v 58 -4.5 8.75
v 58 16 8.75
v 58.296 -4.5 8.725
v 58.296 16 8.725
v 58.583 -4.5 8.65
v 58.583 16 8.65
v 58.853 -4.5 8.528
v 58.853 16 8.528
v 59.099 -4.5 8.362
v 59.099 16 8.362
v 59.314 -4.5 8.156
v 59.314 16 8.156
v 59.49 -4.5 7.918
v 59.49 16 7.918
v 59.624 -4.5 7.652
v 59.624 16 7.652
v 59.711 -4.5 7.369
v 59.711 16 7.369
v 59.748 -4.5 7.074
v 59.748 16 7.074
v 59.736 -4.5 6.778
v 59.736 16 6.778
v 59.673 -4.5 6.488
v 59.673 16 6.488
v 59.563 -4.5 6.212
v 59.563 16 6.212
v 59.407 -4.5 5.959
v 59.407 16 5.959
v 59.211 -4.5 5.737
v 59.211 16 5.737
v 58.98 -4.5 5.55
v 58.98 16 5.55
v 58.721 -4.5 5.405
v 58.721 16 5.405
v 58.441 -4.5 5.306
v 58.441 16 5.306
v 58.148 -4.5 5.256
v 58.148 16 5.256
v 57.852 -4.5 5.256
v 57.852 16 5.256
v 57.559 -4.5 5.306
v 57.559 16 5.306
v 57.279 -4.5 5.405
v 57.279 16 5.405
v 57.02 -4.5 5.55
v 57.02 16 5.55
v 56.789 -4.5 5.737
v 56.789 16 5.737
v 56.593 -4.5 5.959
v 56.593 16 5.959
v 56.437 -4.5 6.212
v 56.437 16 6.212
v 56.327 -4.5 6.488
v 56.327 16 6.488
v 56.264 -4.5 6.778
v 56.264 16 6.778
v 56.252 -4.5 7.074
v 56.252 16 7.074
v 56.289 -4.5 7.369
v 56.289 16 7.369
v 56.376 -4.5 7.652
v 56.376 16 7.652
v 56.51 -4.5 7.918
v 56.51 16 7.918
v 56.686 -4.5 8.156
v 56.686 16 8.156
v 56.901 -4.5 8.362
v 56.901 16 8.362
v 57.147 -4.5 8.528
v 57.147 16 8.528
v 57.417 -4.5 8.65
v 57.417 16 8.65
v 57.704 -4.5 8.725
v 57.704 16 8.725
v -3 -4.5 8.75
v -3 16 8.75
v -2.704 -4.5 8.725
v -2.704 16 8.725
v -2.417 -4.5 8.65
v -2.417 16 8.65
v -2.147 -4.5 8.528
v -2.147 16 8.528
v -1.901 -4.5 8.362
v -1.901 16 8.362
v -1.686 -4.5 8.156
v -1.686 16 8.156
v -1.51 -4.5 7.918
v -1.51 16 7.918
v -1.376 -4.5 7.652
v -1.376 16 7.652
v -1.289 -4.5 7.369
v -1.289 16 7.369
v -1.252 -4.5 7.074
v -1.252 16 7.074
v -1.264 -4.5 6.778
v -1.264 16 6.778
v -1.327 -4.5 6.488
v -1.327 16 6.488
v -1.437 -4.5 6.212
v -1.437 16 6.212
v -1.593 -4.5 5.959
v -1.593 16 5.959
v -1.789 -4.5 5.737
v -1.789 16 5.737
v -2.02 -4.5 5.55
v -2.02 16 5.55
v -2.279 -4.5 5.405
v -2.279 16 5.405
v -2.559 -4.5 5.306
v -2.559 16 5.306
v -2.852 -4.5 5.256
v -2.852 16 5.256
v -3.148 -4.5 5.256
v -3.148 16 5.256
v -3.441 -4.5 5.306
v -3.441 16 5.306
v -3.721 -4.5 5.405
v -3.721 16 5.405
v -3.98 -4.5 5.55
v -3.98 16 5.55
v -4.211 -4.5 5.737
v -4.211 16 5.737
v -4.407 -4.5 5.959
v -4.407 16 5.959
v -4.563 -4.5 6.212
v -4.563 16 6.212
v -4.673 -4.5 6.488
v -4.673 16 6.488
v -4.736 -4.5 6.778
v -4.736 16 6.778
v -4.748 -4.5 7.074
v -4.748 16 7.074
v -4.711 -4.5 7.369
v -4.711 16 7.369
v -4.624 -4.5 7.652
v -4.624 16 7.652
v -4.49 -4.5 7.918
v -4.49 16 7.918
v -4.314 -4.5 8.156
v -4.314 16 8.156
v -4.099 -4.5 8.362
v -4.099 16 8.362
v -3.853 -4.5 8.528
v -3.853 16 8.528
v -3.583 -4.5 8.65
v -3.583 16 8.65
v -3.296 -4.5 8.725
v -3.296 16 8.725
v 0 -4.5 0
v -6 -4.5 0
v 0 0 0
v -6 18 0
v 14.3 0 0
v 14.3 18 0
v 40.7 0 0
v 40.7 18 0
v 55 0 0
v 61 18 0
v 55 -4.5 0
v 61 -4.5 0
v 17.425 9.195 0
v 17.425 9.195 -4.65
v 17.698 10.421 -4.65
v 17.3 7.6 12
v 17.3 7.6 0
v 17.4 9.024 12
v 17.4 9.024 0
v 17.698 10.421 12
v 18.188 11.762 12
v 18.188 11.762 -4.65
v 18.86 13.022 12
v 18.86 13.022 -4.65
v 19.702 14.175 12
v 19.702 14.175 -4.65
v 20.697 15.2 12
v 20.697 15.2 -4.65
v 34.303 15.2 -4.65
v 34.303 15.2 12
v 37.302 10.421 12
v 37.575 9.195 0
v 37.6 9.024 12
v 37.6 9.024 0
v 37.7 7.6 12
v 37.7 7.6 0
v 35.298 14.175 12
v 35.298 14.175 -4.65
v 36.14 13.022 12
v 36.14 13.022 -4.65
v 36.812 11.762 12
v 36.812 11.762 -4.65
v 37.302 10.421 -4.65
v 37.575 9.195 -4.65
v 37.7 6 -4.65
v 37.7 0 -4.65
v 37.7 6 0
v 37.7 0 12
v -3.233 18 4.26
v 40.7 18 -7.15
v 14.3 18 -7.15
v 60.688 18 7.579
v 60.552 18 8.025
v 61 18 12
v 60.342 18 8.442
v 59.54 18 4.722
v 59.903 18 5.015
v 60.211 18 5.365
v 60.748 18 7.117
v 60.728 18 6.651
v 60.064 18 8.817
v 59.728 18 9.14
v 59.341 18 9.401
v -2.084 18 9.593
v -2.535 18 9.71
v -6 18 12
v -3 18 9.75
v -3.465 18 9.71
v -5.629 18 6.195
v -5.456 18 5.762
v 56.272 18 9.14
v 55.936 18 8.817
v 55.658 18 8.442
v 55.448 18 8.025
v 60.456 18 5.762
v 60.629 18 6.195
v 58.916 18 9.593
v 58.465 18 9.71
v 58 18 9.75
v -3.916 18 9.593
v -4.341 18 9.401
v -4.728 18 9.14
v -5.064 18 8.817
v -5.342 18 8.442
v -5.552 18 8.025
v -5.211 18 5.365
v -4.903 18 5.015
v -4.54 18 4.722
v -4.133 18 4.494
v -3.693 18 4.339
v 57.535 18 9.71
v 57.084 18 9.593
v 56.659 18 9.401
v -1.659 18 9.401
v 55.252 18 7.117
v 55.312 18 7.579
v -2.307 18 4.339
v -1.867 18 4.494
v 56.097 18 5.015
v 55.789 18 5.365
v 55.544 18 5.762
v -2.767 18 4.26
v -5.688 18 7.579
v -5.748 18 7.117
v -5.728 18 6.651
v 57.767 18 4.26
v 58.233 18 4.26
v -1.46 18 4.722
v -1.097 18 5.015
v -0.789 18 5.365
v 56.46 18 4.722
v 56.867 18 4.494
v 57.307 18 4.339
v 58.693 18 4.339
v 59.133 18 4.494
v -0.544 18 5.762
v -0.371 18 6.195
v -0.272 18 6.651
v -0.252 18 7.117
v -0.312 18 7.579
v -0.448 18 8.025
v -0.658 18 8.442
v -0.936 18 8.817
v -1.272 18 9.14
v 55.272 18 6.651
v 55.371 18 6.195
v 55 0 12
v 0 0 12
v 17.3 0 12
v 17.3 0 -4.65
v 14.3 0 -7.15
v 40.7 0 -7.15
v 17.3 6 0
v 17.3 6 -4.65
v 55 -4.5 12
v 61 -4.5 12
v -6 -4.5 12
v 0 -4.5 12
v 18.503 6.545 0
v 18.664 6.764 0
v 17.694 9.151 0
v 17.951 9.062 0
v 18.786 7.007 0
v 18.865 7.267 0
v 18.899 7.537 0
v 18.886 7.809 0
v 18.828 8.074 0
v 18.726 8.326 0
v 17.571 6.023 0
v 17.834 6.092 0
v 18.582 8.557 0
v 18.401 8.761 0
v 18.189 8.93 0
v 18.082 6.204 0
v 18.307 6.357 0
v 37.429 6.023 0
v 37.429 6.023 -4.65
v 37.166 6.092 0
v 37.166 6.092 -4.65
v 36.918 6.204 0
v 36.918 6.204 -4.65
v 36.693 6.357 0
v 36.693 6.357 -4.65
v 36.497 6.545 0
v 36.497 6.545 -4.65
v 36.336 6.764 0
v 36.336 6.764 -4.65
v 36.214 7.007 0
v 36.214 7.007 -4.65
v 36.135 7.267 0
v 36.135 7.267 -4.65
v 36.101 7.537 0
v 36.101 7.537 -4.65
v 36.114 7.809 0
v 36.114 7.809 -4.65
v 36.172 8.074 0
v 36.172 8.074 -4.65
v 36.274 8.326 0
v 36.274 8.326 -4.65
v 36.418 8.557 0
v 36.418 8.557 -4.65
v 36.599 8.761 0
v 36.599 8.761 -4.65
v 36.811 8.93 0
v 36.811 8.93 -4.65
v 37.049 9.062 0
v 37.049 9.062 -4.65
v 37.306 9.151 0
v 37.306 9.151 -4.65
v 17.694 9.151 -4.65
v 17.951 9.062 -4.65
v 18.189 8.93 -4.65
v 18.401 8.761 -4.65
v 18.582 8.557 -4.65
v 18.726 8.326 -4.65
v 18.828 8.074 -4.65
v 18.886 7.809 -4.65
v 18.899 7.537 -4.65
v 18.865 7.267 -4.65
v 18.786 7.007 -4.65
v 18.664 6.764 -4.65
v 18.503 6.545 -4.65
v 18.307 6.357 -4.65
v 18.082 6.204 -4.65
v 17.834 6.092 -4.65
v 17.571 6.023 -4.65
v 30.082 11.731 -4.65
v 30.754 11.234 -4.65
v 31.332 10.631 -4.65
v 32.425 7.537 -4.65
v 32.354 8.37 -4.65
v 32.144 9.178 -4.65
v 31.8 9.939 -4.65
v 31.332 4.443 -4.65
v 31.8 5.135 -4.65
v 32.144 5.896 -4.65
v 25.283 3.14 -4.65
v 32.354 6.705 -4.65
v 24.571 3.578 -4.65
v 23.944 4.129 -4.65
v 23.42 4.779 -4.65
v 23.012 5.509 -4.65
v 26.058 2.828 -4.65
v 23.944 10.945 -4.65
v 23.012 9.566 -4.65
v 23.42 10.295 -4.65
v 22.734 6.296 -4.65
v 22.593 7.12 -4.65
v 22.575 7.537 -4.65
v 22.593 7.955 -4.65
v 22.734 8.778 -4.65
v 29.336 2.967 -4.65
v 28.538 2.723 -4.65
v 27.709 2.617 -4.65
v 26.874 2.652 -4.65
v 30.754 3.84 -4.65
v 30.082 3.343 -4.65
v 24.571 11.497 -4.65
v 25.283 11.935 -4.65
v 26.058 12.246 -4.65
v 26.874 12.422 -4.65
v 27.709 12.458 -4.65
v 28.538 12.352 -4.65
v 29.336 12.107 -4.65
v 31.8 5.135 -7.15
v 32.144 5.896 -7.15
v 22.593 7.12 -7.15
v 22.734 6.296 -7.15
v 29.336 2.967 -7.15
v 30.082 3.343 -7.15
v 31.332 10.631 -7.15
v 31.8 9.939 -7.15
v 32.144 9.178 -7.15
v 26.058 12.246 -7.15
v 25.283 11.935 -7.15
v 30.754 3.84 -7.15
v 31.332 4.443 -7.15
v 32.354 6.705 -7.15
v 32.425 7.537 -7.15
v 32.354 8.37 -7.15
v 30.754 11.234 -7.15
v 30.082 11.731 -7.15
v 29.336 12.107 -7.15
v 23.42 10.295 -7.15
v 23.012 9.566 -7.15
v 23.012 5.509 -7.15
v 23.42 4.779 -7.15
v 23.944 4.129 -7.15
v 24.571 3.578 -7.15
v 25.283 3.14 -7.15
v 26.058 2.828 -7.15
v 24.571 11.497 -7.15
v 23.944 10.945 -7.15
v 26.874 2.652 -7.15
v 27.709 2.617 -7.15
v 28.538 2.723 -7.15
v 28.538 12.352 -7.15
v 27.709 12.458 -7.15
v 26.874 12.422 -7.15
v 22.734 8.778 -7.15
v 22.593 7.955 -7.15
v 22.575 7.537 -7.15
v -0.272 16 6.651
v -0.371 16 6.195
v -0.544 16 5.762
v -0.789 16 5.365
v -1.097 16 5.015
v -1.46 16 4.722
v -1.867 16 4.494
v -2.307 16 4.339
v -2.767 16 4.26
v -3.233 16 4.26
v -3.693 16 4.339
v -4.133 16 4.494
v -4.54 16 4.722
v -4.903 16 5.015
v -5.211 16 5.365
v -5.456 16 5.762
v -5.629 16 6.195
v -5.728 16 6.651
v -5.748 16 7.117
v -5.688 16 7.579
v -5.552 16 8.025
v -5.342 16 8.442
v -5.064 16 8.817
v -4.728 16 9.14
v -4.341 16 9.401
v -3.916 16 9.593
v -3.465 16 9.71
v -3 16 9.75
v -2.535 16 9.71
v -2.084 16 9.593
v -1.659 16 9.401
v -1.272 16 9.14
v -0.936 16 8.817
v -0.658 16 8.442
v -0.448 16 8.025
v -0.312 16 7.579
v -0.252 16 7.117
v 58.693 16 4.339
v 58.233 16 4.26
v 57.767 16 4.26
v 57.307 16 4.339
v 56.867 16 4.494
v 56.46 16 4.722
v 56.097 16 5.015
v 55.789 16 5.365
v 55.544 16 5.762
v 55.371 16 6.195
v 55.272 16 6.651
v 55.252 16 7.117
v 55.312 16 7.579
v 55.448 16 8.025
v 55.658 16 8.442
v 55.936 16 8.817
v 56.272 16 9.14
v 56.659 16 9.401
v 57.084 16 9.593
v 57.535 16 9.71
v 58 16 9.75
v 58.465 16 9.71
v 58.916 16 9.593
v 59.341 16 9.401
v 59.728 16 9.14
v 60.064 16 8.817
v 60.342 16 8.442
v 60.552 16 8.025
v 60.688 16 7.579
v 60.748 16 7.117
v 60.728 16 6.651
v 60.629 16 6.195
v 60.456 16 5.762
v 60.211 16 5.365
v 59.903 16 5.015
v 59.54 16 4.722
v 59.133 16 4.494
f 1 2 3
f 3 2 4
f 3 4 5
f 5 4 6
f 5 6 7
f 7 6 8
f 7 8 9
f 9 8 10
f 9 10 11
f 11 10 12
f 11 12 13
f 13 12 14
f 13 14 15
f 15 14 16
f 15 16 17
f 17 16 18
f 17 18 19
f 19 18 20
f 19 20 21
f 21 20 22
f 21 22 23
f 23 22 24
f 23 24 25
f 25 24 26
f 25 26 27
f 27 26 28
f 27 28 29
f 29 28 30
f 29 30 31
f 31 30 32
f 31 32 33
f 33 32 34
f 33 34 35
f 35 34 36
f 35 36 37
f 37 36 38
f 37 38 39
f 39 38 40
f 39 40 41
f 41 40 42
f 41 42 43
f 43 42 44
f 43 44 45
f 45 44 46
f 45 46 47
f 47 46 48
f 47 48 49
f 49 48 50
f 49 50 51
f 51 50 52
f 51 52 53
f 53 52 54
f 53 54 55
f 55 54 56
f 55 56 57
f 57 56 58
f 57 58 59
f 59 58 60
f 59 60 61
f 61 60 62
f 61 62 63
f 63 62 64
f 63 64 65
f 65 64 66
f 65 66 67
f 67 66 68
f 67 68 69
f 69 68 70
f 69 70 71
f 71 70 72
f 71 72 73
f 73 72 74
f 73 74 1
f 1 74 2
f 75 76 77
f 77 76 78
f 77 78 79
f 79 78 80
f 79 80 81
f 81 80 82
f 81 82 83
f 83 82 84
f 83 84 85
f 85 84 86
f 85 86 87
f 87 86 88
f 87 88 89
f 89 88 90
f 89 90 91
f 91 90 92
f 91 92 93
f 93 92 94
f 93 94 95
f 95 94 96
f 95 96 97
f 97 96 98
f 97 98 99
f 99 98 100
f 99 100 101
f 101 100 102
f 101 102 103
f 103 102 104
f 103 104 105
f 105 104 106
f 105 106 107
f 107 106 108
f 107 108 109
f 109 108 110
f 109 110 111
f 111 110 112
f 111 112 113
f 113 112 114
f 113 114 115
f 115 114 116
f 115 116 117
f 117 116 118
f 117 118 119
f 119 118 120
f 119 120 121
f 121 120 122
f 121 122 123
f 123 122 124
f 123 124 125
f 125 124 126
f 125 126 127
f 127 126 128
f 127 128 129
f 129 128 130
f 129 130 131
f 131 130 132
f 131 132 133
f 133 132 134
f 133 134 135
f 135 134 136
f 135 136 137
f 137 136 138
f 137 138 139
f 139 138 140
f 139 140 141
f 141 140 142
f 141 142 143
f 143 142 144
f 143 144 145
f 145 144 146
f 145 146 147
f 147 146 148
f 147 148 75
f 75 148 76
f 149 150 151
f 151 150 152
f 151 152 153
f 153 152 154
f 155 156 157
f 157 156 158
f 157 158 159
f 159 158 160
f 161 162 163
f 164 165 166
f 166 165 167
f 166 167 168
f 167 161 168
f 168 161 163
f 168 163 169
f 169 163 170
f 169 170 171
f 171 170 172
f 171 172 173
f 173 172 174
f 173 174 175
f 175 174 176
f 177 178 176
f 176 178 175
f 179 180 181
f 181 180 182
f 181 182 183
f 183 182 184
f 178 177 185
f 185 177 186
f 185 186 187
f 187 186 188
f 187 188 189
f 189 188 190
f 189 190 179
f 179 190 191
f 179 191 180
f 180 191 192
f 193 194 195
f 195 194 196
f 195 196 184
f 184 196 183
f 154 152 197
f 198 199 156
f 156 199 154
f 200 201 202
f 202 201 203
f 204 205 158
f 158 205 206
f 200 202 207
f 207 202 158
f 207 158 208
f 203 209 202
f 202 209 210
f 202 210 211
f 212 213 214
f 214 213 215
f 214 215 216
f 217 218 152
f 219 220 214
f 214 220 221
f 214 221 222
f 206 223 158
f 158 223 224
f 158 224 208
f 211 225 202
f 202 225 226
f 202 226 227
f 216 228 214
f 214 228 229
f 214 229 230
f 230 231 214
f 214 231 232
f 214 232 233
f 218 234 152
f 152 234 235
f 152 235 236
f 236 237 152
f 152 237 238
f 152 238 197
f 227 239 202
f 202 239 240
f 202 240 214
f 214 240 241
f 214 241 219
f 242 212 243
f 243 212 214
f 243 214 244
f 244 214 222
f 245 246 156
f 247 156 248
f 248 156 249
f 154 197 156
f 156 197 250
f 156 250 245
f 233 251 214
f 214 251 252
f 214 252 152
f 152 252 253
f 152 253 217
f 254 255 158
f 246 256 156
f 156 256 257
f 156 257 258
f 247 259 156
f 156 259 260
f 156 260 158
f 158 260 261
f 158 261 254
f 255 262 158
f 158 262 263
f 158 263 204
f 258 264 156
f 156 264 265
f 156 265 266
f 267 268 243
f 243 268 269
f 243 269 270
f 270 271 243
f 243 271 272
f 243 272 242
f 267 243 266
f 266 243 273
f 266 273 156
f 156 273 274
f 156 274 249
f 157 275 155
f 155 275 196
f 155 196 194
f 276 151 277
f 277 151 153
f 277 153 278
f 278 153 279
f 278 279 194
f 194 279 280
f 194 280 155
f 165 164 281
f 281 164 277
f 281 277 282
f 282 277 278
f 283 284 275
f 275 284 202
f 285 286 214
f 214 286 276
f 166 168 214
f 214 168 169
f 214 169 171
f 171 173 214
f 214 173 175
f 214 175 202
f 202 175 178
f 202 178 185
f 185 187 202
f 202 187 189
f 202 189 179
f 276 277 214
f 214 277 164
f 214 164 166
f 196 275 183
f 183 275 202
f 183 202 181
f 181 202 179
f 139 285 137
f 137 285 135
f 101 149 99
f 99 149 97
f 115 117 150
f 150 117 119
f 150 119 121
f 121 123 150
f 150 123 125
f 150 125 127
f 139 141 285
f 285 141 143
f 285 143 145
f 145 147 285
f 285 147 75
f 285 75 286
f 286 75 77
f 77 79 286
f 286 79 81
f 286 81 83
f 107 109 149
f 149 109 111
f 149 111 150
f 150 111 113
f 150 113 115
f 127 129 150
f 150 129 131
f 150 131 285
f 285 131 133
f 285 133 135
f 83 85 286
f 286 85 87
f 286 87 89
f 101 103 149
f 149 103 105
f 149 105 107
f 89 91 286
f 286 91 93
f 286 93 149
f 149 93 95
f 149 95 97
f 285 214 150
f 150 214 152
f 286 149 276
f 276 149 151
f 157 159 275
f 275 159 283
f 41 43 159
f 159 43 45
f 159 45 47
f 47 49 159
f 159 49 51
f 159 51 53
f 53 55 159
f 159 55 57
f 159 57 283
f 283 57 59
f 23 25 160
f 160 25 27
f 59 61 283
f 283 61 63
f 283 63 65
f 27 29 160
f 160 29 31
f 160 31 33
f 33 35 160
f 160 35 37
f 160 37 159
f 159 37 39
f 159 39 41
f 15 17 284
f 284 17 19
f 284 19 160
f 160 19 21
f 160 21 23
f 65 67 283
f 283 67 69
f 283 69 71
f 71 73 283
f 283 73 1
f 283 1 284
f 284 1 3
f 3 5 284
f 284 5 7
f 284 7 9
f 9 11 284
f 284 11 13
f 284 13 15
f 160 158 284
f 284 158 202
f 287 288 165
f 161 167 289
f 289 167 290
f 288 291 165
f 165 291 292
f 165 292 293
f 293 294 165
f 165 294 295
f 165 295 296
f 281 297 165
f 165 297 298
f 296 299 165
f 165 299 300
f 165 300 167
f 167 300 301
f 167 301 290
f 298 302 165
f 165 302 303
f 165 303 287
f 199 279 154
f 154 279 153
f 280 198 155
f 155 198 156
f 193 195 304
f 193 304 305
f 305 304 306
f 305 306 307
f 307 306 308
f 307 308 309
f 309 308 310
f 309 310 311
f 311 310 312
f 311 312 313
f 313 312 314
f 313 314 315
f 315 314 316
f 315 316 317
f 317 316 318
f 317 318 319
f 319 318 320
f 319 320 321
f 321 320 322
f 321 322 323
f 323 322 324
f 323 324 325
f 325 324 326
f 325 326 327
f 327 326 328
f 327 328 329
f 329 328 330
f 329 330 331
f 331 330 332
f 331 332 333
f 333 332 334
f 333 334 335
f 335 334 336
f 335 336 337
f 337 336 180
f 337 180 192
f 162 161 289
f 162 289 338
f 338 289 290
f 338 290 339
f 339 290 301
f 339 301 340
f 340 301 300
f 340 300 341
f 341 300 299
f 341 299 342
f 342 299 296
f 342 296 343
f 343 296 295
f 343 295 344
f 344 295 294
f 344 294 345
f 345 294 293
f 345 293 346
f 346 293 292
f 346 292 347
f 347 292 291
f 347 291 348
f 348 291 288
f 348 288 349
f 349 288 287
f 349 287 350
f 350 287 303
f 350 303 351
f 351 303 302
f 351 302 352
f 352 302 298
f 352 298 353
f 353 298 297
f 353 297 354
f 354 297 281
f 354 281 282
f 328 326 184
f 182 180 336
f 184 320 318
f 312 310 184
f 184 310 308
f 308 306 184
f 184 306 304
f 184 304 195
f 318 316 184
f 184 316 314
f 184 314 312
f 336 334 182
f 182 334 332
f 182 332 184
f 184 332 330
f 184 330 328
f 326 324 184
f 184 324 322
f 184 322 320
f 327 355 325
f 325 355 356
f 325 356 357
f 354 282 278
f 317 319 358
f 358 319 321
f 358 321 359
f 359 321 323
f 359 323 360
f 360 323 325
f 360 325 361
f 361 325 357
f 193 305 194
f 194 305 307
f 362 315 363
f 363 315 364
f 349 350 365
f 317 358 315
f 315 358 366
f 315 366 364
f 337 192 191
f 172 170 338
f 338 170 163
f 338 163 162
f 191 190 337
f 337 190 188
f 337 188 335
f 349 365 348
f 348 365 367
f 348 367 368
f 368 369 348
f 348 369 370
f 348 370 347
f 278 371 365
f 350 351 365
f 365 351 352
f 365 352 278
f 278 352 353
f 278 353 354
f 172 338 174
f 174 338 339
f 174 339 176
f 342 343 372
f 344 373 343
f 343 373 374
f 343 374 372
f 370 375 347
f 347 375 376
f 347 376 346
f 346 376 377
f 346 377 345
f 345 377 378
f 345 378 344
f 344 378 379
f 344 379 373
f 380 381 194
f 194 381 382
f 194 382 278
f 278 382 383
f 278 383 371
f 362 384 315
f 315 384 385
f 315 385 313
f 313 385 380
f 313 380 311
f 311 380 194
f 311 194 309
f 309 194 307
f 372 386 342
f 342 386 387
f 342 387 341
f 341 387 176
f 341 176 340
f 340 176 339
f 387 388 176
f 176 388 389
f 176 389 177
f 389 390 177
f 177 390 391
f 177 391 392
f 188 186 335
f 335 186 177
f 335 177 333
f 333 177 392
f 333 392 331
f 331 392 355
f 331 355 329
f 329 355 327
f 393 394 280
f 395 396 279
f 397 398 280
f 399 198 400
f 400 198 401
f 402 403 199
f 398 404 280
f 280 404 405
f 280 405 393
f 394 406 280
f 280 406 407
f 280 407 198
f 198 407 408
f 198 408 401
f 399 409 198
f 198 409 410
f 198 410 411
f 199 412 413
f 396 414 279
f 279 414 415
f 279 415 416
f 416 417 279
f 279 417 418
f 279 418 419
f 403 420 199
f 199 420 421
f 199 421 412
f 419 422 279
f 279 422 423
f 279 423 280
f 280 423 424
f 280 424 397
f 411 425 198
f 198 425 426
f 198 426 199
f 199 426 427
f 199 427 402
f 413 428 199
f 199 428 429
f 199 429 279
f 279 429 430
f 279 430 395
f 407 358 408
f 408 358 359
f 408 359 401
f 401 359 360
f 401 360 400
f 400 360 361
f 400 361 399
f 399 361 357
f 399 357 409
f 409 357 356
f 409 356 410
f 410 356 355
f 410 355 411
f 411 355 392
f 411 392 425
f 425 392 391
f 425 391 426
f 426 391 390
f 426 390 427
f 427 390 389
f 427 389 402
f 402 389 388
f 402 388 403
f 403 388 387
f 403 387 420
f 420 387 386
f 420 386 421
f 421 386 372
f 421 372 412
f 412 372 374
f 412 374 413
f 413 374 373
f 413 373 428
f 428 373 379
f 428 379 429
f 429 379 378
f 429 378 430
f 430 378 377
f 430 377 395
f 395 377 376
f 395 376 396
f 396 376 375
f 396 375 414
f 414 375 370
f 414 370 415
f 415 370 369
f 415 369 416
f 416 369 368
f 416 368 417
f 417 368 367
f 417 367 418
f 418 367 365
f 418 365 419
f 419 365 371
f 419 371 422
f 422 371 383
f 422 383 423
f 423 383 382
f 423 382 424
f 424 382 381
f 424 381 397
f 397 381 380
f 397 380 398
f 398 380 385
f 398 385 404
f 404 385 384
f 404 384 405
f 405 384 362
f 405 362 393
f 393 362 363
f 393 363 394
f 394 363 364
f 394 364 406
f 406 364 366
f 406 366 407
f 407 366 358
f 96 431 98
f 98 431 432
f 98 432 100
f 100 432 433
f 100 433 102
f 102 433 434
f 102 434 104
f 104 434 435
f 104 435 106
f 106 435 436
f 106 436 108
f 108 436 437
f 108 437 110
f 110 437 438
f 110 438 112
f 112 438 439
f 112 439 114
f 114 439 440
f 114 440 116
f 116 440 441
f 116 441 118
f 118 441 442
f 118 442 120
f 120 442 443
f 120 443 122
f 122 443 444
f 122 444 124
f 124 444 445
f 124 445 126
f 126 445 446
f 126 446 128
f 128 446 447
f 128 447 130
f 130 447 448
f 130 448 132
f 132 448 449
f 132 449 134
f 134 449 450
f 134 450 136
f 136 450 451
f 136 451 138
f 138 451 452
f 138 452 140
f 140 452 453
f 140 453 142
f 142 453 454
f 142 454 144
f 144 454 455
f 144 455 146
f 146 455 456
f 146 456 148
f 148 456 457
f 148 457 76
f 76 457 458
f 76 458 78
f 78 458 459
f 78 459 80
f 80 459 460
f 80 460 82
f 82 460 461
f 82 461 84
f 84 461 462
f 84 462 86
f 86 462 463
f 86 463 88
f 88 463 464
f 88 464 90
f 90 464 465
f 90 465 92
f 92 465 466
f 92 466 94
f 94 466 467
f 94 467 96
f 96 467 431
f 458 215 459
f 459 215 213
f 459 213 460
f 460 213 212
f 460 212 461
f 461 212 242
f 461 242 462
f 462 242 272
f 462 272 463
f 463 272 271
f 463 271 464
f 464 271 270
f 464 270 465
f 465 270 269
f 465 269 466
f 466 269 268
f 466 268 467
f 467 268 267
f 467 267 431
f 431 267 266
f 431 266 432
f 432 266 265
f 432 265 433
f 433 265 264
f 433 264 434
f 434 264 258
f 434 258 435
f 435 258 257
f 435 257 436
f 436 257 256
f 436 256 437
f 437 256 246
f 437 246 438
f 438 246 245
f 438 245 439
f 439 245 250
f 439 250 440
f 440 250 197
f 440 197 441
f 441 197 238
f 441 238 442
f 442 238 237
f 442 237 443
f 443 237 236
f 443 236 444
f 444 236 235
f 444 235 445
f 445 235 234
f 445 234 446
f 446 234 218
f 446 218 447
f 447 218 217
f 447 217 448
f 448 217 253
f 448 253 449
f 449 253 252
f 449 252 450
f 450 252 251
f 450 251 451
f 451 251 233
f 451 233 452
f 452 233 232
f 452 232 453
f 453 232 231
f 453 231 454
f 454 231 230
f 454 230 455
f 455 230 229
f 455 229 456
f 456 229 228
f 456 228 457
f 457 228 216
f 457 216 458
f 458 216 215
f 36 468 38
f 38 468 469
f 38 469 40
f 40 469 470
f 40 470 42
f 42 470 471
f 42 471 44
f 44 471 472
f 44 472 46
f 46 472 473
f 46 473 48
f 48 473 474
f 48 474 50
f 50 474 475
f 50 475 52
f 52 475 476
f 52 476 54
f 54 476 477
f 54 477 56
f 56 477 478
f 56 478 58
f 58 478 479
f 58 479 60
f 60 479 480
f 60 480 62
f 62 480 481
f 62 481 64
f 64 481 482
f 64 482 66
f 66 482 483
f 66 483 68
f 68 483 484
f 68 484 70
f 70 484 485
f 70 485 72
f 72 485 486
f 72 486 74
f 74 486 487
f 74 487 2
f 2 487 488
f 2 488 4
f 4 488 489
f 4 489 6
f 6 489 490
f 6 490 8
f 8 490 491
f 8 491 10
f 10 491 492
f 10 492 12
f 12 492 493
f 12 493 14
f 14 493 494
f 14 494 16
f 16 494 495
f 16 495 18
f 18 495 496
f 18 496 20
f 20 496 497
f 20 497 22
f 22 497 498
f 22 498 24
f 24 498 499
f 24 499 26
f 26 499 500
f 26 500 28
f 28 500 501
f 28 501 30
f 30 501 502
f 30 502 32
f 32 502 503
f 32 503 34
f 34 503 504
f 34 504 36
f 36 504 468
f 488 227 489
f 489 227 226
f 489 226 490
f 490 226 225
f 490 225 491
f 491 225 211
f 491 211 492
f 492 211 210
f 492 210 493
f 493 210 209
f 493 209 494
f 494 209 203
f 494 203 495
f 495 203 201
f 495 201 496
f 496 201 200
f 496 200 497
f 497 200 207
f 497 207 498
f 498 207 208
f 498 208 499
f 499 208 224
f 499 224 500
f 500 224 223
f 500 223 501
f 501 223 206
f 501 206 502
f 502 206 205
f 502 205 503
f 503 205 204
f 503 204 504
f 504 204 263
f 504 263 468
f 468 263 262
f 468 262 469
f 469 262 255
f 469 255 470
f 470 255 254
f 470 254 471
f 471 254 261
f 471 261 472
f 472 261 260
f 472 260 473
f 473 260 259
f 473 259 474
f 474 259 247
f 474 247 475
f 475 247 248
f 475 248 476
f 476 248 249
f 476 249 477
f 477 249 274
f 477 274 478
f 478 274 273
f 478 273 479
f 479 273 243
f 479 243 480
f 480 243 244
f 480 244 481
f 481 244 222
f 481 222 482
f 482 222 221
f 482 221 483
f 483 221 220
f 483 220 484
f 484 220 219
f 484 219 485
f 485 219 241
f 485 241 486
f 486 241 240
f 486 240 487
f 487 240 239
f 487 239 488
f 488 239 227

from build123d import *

# Parameters (mm, degrees)
BOSS_EXTRUDE2_DEPTH = 12
SKETCH2_W           = 12
SKETCH2_H           = 22.5
BOSS_EXTRUDE3_DEPTH = 6
SKETCH3_W           = 12
SKETCH3_H           = 22.5
BOSS_EXTRUDE4_DEPTH = 6
SKETCH4_R           = 1.75
CUT_EXTRUDE1_DEPTH  = 22.5
BOSS_EXTRUDE5_DEPTH = 4.65
SKETCH6_W           = 26.4
SKETCH6_H           = 18
SKETCH6_R           = 4.925
BOSS_EXTRUDE6_DEPTH = 2.5
SKETCH7_R           = 2.75
CUT_EXTRUDE2_DEPTH  = 2


with BuildPart() as part:
    # Sketch1 → Boss-Extrude2 (new body)
    with BuildSketch(Plane.XY):
        Polygon((0, 18), (0, 0), (17.3, 0), (17.3, 7.6), (17.3, 15.2), (20.697059459, 15.2), (34.302940541, 15.2), (37.7, 15.2), (37.7, 7.6), (37.7, 0), (55, 0), (55, 18), align=None)
        with BuildLine():
            Line((17.3, 15.2), (17.3, 7.6))
            ThreePointArc((17.3, 7.6), (18.187911257, 11.762331467), (20.697059459, 15.2))
            Line((20.697059459, 15.2), (17.3, 15.2))
        make_face()
        with BuildLine():
            Line((37.7, 15.2), (34.302940541, 15.2))
            ThreePointArc((34.302940541, 15.2), (36.812088743, 11.762331467), (37.7, 7.6))
            Line((37.7, 7.6), (37.7, 15.2))
        make_face()
    extrude(amount=BOSS_EXTRUDE2_DEPTH)

    # Sketch2 → Boss-Extrude3 (add)
    with BuildSketch(Plane.ZY):
        with Locations((6, 6.75)):
            Rectangle(SKETCH2_W, SKETCH2_H)
    extrude(amount=BOSS_EXTRUDE3_DEPTH)

    # Sketch3 → Boss-Extrude4 (add)
    with BuildSketch(Plane(origin=(55, 0, 0), x_dir=(0, 0, -1), z_dir=(1, 0, 0))):
        with Locations((-6, 6.75)):
            Rectangle(SKETCH3_W, SKETCH3_H)
    extrude(amount=BOSS_EXTRUDE4_DEPTH)

    # Sketch4 → Cut-Extrude1 (cut)
    with BuildSketch(Plane(origin=(0, 18, 0), x_dir=(1, 0, 0), z_dir=(0, 1, 0))):
        with Locations((-3, -7)):
            Circle(SKETCH4_R)
        with Locations((58, -7)):
            Circle(SKETCH4_R)
    extrude(amount=-CUT_EXTRUDE1_DEPTH, mode=Mode.SUBTRACT)

    # Sketch5 → Boss-Extrude5 (add)
    with BuildSketch(Plane(origin=(0, 0, 0), x_dir=(-1, 0, 0), z_dir=(0, 0, -1))):
        with BuildLine():
            Line((-37.7, 0), (-40.7, 0))
            Line((-40.7, 0), (-40.7, 18))
            Line((-40.7, 18), (-14.3, 18))
            Line((-14.3, 18), (-14.3, 0))
            Line((-14.3, 0), (-17.3, 0))
            Line((-17.3, 0), (-17.3, 6))
            ThreePointArc((-17.3, 6), (-18.898767331, 7.537206525), (-17.425490196, 9.195071224))
            ThreePointArc((-17.425490196, 9.195071224), (-18.543054375, 12.47986937), (-20.697059459, 15.2))
            Line((-20.697059459, 15.2), (-34.302940541, 15.2))
            ThreePointArc((-34.302940541, 15.2), (-36.456945625, 12.47986937), (-37.574509804, 9.195071224))
            ThreePointArc((-37.574509804, 9.195071224), (-36.101232669, 7.537206525), (-37.7, 6))
            Line((-37.7, 6), (-37.7, 0))
        make_face()
    extrude(amount=BOSS_EXTRUDE5_DEPTH)

    # Sketch6 → Boss-Extrude6 (add)
    with BuildSketch(Plane(origin=(0, 0, -4.65), x_dir=(-1, 0, 0), z_dir=(0, 0, -1))):
        with Locations((-27.5, 9)):
            Rectangle(SKETCH6_W, SKETCH6_H)
        with Locations((-27.5, 7.537206525)):
            Circle(SKETCH6_R, mode=Mode.SUBTRACT)
    extrude(amount=BOSS_EXTRUDE6_DEPTH)

    # Sketch7 → Cut-Extrude2 (cut)
    with BuildSketch(Plane(origin=(0, 18, 0), x_dir=(1, 0, 0), z_dir=(0, 1, 0))):
        with Locations((-3, -7)):
            Circle(SKETCH7_R)
        with Locations((58, -7)):
            Circle(SKETCH7_R)
    extrude(amount=-CUT_EXTRUDE2_DEPTH, mode=Mode.SUBTRACT)


solid = part.part
